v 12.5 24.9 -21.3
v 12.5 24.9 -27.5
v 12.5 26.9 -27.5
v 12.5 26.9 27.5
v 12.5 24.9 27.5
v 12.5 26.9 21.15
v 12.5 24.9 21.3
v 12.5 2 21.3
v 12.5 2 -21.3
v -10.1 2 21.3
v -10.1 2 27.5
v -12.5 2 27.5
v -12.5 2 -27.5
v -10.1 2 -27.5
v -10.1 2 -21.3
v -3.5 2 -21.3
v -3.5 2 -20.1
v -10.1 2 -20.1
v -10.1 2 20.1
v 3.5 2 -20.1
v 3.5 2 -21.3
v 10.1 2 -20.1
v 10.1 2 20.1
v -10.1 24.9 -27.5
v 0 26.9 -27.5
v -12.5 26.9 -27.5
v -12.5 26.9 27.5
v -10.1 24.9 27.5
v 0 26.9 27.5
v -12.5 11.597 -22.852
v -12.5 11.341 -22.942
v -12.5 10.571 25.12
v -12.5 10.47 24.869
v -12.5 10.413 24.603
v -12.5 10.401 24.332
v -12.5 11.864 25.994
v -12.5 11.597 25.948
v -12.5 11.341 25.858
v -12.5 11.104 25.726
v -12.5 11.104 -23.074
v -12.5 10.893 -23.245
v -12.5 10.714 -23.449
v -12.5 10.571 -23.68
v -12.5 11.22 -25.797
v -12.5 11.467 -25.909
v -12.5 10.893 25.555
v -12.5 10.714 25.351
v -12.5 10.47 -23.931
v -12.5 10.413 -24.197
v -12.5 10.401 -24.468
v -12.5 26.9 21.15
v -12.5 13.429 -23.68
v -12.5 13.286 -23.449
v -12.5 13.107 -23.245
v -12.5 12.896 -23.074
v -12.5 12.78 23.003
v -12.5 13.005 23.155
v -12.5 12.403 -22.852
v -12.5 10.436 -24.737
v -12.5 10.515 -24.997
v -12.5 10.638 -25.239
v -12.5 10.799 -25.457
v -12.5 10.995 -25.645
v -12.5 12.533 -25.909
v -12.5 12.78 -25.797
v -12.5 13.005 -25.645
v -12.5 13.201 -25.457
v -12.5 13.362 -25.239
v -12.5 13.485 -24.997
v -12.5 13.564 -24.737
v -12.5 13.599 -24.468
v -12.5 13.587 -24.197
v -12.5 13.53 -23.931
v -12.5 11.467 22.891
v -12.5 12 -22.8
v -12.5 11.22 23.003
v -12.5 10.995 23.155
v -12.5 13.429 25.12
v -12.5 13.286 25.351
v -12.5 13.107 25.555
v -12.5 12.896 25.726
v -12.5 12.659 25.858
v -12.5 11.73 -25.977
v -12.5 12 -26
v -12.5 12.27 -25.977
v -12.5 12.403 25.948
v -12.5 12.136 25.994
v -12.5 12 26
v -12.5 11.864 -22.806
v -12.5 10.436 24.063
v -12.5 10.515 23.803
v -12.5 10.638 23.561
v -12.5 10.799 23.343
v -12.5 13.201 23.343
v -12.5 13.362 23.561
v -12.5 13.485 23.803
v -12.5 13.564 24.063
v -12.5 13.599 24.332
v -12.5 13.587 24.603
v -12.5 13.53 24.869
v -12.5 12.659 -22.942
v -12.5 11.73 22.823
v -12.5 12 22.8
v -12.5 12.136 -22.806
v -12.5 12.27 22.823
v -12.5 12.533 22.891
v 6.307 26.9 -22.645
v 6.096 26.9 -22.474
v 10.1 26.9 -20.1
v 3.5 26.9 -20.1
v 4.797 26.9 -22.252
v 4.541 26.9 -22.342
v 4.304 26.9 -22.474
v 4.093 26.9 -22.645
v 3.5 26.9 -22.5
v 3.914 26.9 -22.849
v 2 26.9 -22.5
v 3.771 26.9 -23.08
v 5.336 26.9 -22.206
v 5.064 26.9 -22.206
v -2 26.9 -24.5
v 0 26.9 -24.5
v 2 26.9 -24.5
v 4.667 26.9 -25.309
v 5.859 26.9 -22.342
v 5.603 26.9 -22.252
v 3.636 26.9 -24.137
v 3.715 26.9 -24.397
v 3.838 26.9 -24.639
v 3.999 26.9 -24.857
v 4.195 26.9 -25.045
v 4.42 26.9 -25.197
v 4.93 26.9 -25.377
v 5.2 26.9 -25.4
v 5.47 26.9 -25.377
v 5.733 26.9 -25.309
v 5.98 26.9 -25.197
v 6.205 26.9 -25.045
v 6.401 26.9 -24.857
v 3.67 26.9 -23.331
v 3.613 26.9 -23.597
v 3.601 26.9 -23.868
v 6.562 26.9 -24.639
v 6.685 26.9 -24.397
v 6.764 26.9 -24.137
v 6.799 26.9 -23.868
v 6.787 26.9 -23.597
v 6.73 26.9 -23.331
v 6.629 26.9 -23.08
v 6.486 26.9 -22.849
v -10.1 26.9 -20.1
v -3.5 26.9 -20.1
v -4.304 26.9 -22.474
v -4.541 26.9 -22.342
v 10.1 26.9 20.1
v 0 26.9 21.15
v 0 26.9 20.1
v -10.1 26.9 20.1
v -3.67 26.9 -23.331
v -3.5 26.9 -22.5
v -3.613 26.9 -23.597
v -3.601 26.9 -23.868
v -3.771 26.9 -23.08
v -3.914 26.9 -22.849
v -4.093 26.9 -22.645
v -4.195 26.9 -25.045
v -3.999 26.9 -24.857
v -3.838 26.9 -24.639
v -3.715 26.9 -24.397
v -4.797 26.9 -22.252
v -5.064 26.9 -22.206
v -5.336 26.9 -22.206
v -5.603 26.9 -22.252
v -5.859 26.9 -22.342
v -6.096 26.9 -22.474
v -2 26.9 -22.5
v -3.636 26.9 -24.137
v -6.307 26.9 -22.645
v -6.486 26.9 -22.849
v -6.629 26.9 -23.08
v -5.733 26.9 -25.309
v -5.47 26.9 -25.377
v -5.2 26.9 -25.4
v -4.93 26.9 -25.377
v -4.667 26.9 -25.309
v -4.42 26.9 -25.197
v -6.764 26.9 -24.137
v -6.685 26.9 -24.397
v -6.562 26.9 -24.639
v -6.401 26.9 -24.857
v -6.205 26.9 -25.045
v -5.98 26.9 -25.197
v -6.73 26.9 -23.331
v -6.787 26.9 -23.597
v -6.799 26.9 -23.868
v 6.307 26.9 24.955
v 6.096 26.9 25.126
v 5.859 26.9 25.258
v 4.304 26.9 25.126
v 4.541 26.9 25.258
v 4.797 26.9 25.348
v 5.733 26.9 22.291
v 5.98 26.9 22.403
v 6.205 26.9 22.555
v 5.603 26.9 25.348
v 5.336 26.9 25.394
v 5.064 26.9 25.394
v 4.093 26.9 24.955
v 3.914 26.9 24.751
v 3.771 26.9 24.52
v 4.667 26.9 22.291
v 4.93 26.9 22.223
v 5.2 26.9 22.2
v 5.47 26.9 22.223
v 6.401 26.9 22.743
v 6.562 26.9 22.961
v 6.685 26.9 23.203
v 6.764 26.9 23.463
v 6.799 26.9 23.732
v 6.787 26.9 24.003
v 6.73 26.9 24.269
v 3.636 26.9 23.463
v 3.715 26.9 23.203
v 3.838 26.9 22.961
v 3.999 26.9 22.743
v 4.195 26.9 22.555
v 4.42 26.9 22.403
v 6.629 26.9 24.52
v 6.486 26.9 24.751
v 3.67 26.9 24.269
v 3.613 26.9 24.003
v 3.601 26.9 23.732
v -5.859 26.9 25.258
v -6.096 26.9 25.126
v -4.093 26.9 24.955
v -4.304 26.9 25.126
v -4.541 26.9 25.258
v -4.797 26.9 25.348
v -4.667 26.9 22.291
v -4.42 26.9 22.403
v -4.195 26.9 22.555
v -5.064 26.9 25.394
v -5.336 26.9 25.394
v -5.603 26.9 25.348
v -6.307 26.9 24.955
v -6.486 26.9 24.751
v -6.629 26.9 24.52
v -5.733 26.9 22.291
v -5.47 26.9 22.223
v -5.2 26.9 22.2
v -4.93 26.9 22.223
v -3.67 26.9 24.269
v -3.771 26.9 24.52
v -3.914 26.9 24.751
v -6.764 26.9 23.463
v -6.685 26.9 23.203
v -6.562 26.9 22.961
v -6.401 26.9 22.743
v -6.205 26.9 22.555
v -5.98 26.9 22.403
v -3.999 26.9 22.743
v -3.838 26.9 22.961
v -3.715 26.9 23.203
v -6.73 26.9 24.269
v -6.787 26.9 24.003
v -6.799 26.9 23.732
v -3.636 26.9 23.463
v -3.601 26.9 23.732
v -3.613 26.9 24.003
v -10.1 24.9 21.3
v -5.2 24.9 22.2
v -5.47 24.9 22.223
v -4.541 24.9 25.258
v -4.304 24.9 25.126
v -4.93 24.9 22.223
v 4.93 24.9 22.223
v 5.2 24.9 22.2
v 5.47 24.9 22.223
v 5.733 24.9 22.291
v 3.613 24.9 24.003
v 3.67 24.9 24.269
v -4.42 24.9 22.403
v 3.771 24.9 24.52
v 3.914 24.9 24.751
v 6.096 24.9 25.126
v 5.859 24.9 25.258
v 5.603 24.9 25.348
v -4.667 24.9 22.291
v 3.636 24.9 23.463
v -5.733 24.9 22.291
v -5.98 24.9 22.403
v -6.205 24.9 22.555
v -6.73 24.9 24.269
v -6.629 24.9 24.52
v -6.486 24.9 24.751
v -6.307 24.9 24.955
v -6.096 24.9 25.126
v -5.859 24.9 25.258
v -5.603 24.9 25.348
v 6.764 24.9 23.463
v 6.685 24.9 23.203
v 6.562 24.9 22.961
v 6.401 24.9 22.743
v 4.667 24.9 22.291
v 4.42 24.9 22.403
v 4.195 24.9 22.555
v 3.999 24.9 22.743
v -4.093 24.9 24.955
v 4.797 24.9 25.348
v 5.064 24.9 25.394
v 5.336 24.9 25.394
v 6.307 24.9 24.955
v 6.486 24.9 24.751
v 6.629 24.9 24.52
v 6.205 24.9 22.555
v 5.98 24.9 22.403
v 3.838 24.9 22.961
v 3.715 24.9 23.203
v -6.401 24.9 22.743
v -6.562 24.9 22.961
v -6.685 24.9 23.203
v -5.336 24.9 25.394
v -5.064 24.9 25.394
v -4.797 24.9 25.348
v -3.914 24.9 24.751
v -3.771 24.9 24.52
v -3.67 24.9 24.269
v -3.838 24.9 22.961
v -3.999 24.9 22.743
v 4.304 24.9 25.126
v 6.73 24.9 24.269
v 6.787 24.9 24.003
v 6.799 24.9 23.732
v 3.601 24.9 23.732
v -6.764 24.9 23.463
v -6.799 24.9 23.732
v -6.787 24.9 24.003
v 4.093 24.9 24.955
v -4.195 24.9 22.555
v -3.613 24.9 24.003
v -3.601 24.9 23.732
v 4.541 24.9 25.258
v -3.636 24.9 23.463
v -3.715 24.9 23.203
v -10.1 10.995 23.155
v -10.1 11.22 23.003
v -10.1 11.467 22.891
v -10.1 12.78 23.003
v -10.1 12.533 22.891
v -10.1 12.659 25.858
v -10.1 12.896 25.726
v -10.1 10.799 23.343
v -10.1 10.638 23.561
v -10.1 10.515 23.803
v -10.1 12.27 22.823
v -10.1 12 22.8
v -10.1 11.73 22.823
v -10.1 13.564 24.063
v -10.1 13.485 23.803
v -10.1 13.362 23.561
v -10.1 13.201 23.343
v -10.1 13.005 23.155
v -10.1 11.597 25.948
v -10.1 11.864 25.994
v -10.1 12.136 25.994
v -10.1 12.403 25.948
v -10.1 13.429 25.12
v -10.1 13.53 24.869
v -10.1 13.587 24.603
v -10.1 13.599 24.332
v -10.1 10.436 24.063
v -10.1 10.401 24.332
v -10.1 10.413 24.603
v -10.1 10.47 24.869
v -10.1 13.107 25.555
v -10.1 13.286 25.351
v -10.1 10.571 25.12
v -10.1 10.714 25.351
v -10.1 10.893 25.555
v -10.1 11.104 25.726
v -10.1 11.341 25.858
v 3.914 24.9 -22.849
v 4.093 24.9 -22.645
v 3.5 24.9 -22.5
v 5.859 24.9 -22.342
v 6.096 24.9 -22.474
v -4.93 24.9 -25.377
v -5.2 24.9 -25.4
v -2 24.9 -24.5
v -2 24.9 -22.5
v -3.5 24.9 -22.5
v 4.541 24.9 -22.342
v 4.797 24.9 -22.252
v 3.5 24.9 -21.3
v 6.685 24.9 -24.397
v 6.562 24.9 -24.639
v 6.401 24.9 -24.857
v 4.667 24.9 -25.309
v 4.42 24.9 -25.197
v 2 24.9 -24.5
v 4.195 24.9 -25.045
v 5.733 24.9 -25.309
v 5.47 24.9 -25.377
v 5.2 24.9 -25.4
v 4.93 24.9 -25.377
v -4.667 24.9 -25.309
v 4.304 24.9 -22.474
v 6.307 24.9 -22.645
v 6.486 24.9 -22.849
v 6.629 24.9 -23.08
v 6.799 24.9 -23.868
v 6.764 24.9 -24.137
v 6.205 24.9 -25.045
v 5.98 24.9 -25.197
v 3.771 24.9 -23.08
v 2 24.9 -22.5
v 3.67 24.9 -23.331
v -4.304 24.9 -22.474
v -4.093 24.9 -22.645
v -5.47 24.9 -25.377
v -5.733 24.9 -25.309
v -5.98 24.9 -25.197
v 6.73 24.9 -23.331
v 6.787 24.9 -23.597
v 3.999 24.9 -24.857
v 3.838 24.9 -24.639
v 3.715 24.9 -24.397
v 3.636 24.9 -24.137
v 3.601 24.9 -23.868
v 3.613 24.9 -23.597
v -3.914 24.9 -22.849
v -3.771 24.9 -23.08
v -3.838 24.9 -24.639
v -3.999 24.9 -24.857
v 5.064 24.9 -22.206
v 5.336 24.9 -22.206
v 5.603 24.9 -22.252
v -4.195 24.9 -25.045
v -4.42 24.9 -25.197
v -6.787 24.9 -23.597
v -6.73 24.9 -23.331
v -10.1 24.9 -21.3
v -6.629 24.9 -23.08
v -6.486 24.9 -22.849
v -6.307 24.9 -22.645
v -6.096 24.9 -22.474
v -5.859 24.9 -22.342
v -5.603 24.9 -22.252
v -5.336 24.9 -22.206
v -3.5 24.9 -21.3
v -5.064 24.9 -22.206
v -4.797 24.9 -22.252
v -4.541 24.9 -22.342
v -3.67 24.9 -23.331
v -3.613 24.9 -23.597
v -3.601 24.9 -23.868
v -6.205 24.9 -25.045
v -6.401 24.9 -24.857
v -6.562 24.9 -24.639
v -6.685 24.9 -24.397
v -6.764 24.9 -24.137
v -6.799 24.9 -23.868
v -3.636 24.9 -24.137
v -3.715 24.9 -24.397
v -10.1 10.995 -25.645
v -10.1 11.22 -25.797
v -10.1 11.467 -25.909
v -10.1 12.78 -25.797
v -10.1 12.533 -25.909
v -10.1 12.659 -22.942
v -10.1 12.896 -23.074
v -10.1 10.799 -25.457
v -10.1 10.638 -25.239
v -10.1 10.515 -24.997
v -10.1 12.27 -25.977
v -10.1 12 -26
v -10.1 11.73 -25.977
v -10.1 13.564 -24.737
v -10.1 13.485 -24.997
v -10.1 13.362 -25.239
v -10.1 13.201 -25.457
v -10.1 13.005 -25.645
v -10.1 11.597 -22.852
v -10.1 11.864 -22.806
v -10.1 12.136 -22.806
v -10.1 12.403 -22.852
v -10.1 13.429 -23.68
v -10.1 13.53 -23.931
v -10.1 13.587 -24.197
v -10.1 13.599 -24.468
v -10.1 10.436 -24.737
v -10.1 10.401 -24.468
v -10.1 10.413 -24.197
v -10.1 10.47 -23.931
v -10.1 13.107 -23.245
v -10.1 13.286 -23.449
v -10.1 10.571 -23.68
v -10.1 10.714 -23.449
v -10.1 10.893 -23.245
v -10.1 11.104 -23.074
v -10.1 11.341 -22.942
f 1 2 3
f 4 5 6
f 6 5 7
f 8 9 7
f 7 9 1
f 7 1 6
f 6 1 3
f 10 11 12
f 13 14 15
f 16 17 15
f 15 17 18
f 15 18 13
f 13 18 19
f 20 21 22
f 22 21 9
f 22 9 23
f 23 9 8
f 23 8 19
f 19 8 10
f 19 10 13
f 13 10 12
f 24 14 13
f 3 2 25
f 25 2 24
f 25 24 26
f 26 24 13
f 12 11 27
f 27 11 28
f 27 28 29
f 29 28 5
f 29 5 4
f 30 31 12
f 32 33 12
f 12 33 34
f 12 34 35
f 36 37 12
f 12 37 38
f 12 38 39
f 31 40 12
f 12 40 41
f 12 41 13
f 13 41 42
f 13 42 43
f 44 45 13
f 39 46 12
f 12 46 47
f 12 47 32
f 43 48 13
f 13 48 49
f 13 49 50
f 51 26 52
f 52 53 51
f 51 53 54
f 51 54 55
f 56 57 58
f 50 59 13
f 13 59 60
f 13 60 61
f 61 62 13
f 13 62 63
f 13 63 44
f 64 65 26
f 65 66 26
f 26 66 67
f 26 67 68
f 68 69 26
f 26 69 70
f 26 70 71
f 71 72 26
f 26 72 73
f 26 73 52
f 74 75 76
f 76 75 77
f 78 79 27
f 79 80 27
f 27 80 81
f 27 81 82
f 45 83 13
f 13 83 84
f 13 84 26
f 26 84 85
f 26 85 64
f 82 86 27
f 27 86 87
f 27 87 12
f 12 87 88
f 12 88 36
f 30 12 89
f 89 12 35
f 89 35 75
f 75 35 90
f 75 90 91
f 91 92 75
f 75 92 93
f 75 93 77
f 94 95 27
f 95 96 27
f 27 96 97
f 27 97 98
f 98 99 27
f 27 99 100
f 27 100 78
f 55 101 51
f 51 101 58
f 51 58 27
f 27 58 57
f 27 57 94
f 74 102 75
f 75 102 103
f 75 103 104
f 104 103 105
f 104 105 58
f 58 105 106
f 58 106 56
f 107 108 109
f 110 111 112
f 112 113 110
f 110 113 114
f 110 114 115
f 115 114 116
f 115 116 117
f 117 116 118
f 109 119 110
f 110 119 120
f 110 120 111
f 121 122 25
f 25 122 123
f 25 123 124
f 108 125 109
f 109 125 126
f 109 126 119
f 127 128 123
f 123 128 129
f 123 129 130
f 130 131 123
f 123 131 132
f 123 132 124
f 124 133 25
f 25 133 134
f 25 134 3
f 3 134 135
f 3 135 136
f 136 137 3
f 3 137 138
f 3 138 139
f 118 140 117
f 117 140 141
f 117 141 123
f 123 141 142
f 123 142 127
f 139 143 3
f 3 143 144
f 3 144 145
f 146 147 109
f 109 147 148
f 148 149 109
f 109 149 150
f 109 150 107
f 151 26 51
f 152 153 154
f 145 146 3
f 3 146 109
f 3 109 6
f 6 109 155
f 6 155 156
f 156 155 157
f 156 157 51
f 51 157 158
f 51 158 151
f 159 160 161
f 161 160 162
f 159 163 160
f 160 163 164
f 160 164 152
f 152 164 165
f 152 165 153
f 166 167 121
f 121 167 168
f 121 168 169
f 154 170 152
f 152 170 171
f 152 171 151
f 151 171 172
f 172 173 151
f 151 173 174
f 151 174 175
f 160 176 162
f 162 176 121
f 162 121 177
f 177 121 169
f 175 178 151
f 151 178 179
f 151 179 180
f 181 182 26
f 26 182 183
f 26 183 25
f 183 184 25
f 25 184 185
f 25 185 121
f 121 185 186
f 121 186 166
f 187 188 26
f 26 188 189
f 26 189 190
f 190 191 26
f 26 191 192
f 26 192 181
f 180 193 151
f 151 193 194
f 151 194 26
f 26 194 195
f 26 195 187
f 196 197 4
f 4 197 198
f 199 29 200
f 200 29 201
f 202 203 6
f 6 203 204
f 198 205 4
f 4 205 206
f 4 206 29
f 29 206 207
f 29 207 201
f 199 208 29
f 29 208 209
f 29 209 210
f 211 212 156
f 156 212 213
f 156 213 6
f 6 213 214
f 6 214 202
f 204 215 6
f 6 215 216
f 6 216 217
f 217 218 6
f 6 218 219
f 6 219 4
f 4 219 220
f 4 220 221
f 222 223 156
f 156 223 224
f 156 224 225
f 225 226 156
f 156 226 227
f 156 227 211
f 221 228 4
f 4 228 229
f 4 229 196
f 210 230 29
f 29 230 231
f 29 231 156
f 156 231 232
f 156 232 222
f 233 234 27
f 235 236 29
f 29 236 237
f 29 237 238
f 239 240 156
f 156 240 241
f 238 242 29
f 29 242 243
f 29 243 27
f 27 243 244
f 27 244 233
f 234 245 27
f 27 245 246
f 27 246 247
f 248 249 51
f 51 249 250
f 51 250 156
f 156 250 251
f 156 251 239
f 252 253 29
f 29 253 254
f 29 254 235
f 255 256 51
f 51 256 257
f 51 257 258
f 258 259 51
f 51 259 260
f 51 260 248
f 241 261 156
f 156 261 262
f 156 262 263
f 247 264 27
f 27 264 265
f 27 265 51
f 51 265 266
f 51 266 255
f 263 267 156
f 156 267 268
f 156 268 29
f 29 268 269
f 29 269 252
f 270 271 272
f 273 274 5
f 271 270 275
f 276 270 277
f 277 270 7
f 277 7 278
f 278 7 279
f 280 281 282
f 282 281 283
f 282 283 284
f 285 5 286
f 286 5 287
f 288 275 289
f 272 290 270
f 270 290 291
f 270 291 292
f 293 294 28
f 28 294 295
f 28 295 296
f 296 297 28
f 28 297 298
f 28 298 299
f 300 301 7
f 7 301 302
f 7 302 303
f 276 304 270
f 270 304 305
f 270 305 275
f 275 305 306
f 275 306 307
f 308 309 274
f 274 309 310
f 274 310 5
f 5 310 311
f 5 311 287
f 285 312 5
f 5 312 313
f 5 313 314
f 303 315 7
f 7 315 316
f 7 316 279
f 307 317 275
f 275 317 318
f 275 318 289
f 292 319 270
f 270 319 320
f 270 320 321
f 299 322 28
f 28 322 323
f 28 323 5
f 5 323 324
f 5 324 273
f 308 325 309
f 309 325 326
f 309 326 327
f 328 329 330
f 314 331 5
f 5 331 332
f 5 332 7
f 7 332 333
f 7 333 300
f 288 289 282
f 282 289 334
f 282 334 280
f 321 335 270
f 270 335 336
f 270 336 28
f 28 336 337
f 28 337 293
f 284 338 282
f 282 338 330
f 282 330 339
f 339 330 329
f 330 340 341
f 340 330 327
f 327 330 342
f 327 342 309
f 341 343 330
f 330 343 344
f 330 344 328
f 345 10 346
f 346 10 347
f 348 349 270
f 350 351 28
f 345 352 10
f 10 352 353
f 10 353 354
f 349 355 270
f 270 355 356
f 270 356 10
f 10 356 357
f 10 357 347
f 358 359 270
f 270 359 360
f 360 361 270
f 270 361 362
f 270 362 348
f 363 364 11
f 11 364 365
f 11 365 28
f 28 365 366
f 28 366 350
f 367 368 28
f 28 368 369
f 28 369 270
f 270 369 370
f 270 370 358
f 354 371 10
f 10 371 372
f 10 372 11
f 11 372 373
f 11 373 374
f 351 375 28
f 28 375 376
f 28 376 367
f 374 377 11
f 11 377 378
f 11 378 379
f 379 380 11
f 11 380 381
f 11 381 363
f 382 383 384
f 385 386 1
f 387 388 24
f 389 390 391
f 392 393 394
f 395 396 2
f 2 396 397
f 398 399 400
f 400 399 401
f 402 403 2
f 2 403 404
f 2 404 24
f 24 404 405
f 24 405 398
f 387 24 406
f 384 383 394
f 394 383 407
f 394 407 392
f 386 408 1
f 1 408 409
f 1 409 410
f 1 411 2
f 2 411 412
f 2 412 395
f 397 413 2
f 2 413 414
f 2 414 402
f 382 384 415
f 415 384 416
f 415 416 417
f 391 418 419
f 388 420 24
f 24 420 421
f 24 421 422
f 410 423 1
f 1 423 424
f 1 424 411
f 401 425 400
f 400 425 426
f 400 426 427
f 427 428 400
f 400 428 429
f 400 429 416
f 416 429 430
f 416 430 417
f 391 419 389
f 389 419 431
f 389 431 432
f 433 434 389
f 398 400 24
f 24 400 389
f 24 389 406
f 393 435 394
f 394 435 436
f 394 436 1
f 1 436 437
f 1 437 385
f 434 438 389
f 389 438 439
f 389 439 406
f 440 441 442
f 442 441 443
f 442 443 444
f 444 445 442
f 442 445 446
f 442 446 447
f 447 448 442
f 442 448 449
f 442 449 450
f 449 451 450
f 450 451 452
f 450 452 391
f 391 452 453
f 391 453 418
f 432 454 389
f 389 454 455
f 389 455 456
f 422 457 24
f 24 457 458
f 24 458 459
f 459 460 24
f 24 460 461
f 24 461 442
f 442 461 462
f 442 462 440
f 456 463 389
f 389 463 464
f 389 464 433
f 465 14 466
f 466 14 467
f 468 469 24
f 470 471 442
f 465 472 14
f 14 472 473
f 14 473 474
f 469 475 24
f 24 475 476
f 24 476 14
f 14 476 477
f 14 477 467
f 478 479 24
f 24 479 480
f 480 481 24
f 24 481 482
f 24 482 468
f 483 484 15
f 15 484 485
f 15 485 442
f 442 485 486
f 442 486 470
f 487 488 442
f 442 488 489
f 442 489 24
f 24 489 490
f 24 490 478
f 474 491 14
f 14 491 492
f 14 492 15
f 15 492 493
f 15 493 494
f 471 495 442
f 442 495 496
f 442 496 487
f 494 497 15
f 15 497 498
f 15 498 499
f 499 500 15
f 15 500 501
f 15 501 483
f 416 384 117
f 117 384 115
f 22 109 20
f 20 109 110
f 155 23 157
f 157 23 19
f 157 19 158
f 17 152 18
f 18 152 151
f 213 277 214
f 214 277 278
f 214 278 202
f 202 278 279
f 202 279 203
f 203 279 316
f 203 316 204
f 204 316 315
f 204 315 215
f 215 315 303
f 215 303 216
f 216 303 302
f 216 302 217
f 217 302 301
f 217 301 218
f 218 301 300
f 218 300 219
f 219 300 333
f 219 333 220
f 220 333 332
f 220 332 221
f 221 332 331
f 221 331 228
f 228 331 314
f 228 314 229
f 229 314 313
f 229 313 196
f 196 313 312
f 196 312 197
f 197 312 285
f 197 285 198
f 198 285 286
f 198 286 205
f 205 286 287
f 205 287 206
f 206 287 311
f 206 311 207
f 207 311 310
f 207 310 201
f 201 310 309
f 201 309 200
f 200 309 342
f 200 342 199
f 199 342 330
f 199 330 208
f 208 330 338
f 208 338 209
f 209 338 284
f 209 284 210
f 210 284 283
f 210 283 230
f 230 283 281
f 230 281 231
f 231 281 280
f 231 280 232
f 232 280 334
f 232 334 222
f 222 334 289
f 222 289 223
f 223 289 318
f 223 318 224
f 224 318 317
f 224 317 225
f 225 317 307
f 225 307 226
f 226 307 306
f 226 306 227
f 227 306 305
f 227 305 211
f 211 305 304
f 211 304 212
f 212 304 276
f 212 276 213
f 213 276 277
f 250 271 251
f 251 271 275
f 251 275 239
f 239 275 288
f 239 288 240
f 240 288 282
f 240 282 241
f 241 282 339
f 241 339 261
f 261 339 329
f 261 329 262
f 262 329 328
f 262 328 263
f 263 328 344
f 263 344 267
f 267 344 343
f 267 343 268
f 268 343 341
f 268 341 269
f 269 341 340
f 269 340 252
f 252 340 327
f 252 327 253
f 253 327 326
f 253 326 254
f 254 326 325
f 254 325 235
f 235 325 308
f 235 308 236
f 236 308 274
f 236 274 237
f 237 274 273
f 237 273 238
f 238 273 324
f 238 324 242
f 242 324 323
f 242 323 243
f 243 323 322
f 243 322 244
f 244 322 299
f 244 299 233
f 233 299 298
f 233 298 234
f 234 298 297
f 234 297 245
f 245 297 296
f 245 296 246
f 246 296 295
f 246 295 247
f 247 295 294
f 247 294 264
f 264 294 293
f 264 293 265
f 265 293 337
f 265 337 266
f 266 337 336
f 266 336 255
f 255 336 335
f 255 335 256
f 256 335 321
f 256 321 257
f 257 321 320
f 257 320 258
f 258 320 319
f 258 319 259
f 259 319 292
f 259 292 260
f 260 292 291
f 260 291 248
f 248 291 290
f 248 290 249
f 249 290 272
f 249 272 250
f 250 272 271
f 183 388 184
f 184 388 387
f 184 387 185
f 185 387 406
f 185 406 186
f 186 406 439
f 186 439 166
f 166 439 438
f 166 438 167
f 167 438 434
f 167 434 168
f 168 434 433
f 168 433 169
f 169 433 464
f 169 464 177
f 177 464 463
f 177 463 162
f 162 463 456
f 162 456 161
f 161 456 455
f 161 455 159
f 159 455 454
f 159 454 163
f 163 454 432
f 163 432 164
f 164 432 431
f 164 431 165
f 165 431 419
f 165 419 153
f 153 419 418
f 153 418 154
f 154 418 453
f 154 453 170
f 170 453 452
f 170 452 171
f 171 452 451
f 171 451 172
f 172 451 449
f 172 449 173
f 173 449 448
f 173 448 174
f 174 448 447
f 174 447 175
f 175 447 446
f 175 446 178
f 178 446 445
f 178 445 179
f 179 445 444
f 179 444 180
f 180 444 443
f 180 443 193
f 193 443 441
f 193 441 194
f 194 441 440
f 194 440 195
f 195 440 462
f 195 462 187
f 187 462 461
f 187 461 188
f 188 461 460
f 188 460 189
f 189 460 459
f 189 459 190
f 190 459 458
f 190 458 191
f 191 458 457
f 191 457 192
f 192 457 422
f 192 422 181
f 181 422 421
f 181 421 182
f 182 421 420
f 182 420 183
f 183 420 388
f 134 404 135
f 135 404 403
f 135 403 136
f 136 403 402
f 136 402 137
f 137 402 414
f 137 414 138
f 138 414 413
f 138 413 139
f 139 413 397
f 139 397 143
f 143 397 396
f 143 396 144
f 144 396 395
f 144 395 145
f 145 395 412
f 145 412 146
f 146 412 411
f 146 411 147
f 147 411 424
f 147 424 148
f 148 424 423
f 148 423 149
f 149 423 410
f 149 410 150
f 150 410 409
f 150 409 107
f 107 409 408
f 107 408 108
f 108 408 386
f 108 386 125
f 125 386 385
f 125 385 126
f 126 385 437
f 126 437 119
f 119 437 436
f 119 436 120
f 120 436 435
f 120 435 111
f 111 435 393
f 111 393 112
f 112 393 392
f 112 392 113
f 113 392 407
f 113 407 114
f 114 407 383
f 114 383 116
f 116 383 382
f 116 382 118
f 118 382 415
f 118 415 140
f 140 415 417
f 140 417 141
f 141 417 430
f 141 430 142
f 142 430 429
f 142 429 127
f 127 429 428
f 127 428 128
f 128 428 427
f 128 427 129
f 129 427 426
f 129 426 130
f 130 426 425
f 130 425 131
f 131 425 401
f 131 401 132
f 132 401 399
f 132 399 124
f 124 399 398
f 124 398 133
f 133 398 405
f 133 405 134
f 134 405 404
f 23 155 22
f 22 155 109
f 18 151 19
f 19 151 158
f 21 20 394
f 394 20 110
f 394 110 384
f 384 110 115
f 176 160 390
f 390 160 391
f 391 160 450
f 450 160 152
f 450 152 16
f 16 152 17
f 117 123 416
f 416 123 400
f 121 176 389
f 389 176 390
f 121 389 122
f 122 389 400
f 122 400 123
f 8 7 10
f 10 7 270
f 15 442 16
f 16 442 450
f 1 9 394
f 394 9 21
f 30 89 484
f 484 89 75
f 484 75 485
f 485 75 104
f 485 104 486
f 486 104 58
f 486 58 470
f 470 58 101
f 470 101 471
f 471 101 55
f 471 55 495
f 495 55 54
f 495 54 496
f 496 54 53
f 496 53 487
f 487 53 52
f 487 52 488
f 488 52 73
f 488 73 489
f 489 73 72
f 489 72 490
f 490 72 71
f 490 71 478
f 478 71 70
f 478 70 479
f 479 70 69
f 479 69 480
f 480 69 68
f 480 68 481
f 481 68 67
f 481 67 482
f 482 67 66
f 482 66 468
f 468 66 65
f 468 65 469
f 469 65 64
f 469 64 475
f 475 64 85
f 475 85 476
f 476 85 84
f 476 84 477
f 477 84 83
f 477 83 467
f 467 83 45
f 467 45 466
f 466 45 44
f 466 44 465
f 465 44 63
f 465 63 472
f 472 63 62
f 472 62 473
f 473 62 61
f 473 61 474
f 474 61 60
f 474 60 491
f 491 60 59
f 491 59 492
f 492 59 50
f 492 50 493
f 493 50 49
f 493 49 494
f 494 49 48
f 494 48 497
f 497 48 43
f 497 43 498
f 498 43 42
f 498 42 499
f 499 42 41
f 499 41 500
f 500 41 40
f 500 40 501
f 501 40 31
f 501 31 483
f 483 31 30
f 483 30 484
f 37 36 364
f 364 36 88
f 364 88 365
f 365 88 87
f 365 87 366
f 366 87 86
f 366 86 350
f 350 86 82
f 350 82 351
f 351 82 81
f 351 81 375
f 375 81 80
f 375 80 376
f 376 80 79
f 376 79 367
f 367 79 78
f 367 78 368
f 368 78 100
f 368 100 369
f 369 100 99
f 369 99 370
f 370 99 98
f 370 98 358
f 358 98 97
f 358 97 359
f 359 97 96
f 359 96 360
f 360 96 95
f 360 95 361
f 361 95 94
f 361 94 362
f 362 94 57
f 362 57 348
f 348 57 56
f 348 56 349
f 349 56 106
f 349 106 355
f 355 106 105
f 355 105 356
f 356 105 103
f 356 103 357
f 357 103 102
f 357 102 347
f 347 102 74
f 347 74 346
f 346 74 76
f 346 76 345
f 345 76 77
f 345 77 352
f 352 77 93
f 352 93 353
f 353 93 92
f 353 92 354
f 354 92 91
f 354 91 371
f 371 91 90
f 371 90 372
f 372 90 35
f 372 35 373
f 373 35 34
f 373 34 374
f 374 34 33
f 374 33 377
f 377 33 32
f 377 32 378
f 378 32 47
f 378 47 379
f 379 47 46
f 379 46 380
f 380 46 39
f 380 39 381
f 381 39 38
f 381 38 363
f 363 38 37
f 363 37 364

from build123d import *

# Parameters (mm, degrees)
SKETCH2_W           = 75
SKETCH2_H           = 8
SKETCH2_R           = 1.6
BOSS_EXTRUDE1_DEPTH = 2
SKETCH3_W           = 25
SKETCH3_H           = 18.5
BOSS_EXTRUDE2_DEPTH = 2
SKETCH4_W           = 25
SKETCH4_H           = 2
BOSS_EXTRUDE3_DEPTH = 18.5
SKETCH5_W           = 10.2
SKETCH5_H           = 40.2
CUT_EXTRUDE1_DEPTH  = 18.5
SKETCH6_W           = 10.2
SKETCH6_H           = 40.2
BOSS_EXTRUDE4_DEPTH = 24.9
SKETCH8_W           = 25
SKETCH8_H           = 7
BOSS_EXTRUDE5_DEPTH = 2
SKETCH9_R           = 1.6
CUT_EXTRUDE2_DEPTH  = 2
SKETCH10_W          = 20.2
SKETCH10_H          = 40.2
CUT_EXTRUDE3_DEPTH  = 77
SKETCH11_W          = 7
SKETCH11_H          = 2.4
CUT_EXTRUDE4_DEPTH  = 77
SKETCH12_W          = 2.4
SKETCH12_H          = 7
BOSS_EXTRUDE6_DEPTH = 24.9
SKETCH13_W          = 4
SKETCH13_H          = 4
CUT_EXTRUDE5_DEPTH  = 77
SKETCH14_W          = 25
SKETCH14_H          = 8
SKETCH14_R          = 1.6
BOSS_EXTRUDE7_DEPTH = 2
CUT_EXTRUDE6_DEPTH  = 2
CHAMFER1_SIZE       = 10
CUT_EXTRUDE7_DEPTH  = 1.2
SKETCH17_W          = 20.2
SKETCH17_H          = 22.9
CUT_EXTRUDE8_DEPTH  = 1.2
CUT_EXTRUDE9_DEPTH  = 2
CUT_EXTRUDE10_DEPTH = 2
SKETCH20_W          = 25
SKETCH20_H          = 8
CUT_EXTRUDE11_DEPTH = 156
SKETCH21_W          = 6.2
SKETCH21_H          = 22.9
CUT_EXTRUDE12_DEPTH = 55
SKETCH22_R          = 1.6
CUT_EXTRUDE13_DEPTH = 55


with BuildPart() as part:
    # Sketch2 → Boss-Extrude1 (new body)
    with BuildSketch(Plane(origin=(0, 0, 0), x_dir=(1, 0, 0), z_dir=(0, 1, 0))):
        Rectangle(SKETCH2_W, SKETCH2_H)
        with Locations((-31.75, 0)):
            Circle(SKETCH2_R, mode=Mode.SUBTRACT)
        with Locations((31.75, 0)):
            Circle(SKETCH2_R, mode=Mode.SUBTRACT)
    extrude(amount=BOSS_EXTRUDE1_DEPTH)

    # Sketch3 → Boss-Extrude2 (add)
    with BuildSketch(Plane(origin=(0, 2, 0), x_dir=(1, 0, 0), z_dir=(0, 1, 0))):
        with Locations((0, -13.25)):
            Rectangle(SKETCH3_W, SKETCH3_H)
    extrude(amount=-BOSS_EXTRUDE2_DEPTH)

    # Sketch4 → Boss-Extrude3 (add)
    with BuildSketch(Plane(origin=(0, 0, -4), x_dir=(-1, 0, 0), z_dir=(0, 0, -1))):
        with Locations((0, 1)):
            Rectangle(SKETCH4_W, SKETCH4_H)
    extrude(amount=BOSS_EXTRUDE3_DEPTH)

    # Sketch5 → Cut-Extrude1 (cut)
    with BuildSketch(Plane(origin=(0, 2, 0), x_dir=(1, 0, 0), z_dir=(0, 1, 0))):
        Rectangle(SKETCH5_W, SKETCH5_H)
    extrude(amount=-CUT_EXTRUDE1_DEPTH, mode=Mode.SUBTRACT)

    # Sketch6 → Boss-Extrude4 (add)
    with BuildSketch(Plane(origin=(0, 2, 0), x_dir=(1, 0, 0), z_dir=(0, 1, 0))):
        Polygon((-12.5, 4), (-12.5, -4), (-12.5, -22.5), (12.5, -22.5), (12.5, -4), (12.5, 4), (12.5, 22.5), (-12.5, 22.5), align=None)
        Rectangle(SKETCH6_W, SKETCH6_H, mode=Mode.SUBTRACT)
    extrude(amount=BOSS_EXTRUDE4_DEPTH)

    # Sketch8 → Boss-Extrude5 (add)
    with BuildSketch(Plane(origin=(0, 26.9, 0), x_dir=(1, 0, 0), z_dir=(0, 1, 0))):
        with Locations((0, 26)):
            Rectangle(SKETCH8_W, SKETCH8_H)
        with Locations((0, -26)):
            Rectangle(SKETCH8_W, SKETCH8_H)
    extrude(amount=-BOSS_EXTRUDE5_DEPTH)

    # Sketch9 → Cut-Extrude2 (cut)
    with BuildSketch(Plane.XZ.offset(-24.9)):
        with Locations((5.2, 23.8)):
            Circle(SKETCH9_R)
        with Locations((-5.2, 23.8)):
            Circle(SKETCH9_R)
        with Locations((-5.2, -23.8)):
            Circle(SKETCH9_R)
        with Locations((5.2, -23.8)):
            Circle(SKETCH9_R)
    extrude(amount=-CUT_EXTRUDE2_DEPTH, mode=Mode.SUBTRACT)

    # Sketch10 → Cut-Extrude3 (cut)
    with BuildSketch(Plane.XZ):
        Rectangle(SKETCH10_W, SKETCH10_H)
    extrude(amount=-CUT_EXTRUDE3_DEPTH, mode=Mode.SUBTRACT)

    # Sketch11 → Cut-Extrude4 (cut)
    with BuildSketch(Plane.XZ):
        with Locations((0, -21.3)):
            Rectangle(SKETCH11_W, SKETCH11_H)
    extrude(amount=-CUT_EXTRUDE4_DEPTH, mode=Mode.SUBTRACT)

    # Sketch12 → Boss-Extrude6 (add)
    with BuildSketch(Plane.XZ):
        with Locations((-11.3, 26)):
            Rectangle(SKETCH12_W, SKETCH12_H)
        with Locations((-11.3, -26)):
            Rectangle(SKETCH12_W, SKETCH12_H)
        with Locations((11.3, 26)):
            Rectangle(SKETCH12_W, SKETCH12_H)
        with Locations((11.3, -26)):
            Rectangle(SKETCH12_W, SKETCH12_H)
    extrude(amount=-BOSS_EXTRUDE6_DEPTH)

    # Sketch13 → Cut-Extrude5 (cut)
    with BuildSketch(Plane(origin=(0, 26.9, 0), x_dir=(1, 0, 0), z_dir=(0, 1, 0))):
        with Locations((0, 22.5)):
            Rectangle(SKETCH13_W, SKETCH13_H)
    extrude(amount=-CUT_EXTRUDE5_DEPTH, mode=Mode.SUBTRACT)

    # Sketch14 → Boss-Extrude7 (add)
    with BuildSketch(Plane(origin=(0, 2, 0), x_dir=(1, 0, 0), z_dir=(0, 1, 0))):
        with Locations((-25, 0)):
            Rectangle(SKETCH14_W, SKETCH14_H)
        with Locations((-31.75, 0)):
            Circle(SKETCH14_R, mode=Mode.SUBTRACT)
        with Locations((25, 0)):
            Rectangle(SKETCH14_W, SKETCH14_H)
        with Locations((31.75, 0)):
            Circle(SKETCH14_R, mode=Mode.SUBTRACT)
    extrude(amount=BOSS_EXTRUDE7_DEPTH)

    # Sketch15 → Cut-Extrude6 (cut)
    with BuildSketch(Plane.XZ):
        Polygon((10.1, -20.1), (3.5, -20.1), (3.5, -22.5), (10.1, -22.5), (10.1, -29.5), (12.5, -29.5), (12.5, -4), (37.5, -4), (37.5, 4), (12.5, 4), (12.5, 29.5), (10.1, 29.5), (10.1, 22.5), (-10.1, 22.5), (-10.1, 29.5), (-12.5, 29.5), (-12.5, 4), (-37.5, 4), (-37.5, -4), (-12.5, -4), (-12.5, -29.5), (-10.1, -29.5), (-10.1, -22.5), (-3.5, -22.5), (-3.5, -20.1), (-10.1, -20.1), (-10.1, 20.1), (10.1, 20.1), align=None)
    extrude(amount=-CUT_EXTRUDE6_DEPTH, mode=Mode.SUBTRACT)

    # Chamfer1
    chamfer1_edges = [part.edges().sort_by_distance(p)[0] for p in [
        (-12.5, 4, 0),
        (12.5, 4, 0),
    ]]
    chamfer(chamfer1_edges, length=CHAMFER1_SIZE)

    # Sketch16 → Cut-Extrude7 (cut)
    with BuildSketch(Plane.XY.offset(22.5)):
        Polygon((-10.1, 2), (10.1, 2), (10.1, 24.9), (6.132737905, 24.9), (4.267262095, 24.9), (-4.267262095, 24.9), (-6.132737905, 24.9), (-10.1, 24.9), align=None)
    extrude(amount=-CUT_EXTRUDE7_DEPTH, mode=Mode.SUBTRACT)

    # Sketch17 → Cut-Extrude8 (cut)
    with BuildSketch(Plane(origin=(0, 0, -22.5), x_dir=(-1, 0, 0), z_dir=(0, 0, -1))):
        with Locations((0, 13.45)):
            Rectangle(SKETCH17_W, SKETCH17_H)
    extrude(amount=-CUT_EXTRUDE8_DEPTH, mode=Mode.SUBTRACT)

    # Sketch18 → Cut-Extrude9 (cut)
    with BuildSketch(Plane(origin=(0, 0, -29.5), x_dir=(-1, 0, 0), z_dir=(0, 0, -1))):
        Polygon((10.1, 2), (12.5, 2), (12.5, 26.9), (-12.5, 26.9), (-12.5, 2), (-10.1, 2), (-10.1, 24.9), (10.1, 24.9), align=None)
    extrude(amount=-CUT_EXTRUDE9_DEPTH, mode=Mode.SUBTRACT)

    # Sketch19 → Cut-Extrude10 (cut)
    with BuildSketch(Plane.XY.offset(29.5)):
        Polygon((10.1, 2), (12.5, 2), (12.5, 26.9), (-12.5, 26.9), (-12.5, 2), (-10.1, 2), (-10.1, 24.9), (10.1, 24.9), align=None)
    extrude(amount=-CUT_EXTRUDE10_DEPTH, mode=Mode.SUBTRACT)

    # Sketch20 → Cut-Extrude11 (cut)
    with BuildSketch(Plane.XZ.offset(-2)):
        with Locations((-25, 0)):
            Rectangle(SKETCH20_W, SKETCH20_H)
        with Locations((25, 0)):
            Rectangle(SKETCH20_W, SKETCH20_H)
    extrude(amount=-CUT_EXTRUDE11_DEPTH, mode=Mode.SUBTRACT)

    # Sketch21 → Cut-Extrude12 (cut)
    with BuildSketch(Plane(origin=(-10.1, 0, 0), x_dir=(0, 0, -1), z_dir=(1, 0, 0))):
        with Locations((-24.4, 13.45)):
            Rectangle(SKETCH21_W, SKETCH21_H)
        with Locations((24.4, 13.45)):
            Rectangle(SKETCH21_W, SKETCH21_H)
    extrude(amount=CUT_EXTRUDE12_DEPTH, mode=Mode.SUBTRACT)

    # Sketch22 → Cut-Extrude13 (cut)
    with BuildSketch(Plane(origin=(-10.1, 0, 0), x_dir=(0, 0, -1), z_dir=(1, 0, 0))):
        with Locations((-24.4, 12)):
            Circle(SKETCH22_R)
        with Locations((24.4, 12)):
            Circle(SKETCH22_R)
    extrude(amount=-CUT_EXTRUDE13_DEPTH, mode=Mode.SUBTRACT)


solid = part.part
